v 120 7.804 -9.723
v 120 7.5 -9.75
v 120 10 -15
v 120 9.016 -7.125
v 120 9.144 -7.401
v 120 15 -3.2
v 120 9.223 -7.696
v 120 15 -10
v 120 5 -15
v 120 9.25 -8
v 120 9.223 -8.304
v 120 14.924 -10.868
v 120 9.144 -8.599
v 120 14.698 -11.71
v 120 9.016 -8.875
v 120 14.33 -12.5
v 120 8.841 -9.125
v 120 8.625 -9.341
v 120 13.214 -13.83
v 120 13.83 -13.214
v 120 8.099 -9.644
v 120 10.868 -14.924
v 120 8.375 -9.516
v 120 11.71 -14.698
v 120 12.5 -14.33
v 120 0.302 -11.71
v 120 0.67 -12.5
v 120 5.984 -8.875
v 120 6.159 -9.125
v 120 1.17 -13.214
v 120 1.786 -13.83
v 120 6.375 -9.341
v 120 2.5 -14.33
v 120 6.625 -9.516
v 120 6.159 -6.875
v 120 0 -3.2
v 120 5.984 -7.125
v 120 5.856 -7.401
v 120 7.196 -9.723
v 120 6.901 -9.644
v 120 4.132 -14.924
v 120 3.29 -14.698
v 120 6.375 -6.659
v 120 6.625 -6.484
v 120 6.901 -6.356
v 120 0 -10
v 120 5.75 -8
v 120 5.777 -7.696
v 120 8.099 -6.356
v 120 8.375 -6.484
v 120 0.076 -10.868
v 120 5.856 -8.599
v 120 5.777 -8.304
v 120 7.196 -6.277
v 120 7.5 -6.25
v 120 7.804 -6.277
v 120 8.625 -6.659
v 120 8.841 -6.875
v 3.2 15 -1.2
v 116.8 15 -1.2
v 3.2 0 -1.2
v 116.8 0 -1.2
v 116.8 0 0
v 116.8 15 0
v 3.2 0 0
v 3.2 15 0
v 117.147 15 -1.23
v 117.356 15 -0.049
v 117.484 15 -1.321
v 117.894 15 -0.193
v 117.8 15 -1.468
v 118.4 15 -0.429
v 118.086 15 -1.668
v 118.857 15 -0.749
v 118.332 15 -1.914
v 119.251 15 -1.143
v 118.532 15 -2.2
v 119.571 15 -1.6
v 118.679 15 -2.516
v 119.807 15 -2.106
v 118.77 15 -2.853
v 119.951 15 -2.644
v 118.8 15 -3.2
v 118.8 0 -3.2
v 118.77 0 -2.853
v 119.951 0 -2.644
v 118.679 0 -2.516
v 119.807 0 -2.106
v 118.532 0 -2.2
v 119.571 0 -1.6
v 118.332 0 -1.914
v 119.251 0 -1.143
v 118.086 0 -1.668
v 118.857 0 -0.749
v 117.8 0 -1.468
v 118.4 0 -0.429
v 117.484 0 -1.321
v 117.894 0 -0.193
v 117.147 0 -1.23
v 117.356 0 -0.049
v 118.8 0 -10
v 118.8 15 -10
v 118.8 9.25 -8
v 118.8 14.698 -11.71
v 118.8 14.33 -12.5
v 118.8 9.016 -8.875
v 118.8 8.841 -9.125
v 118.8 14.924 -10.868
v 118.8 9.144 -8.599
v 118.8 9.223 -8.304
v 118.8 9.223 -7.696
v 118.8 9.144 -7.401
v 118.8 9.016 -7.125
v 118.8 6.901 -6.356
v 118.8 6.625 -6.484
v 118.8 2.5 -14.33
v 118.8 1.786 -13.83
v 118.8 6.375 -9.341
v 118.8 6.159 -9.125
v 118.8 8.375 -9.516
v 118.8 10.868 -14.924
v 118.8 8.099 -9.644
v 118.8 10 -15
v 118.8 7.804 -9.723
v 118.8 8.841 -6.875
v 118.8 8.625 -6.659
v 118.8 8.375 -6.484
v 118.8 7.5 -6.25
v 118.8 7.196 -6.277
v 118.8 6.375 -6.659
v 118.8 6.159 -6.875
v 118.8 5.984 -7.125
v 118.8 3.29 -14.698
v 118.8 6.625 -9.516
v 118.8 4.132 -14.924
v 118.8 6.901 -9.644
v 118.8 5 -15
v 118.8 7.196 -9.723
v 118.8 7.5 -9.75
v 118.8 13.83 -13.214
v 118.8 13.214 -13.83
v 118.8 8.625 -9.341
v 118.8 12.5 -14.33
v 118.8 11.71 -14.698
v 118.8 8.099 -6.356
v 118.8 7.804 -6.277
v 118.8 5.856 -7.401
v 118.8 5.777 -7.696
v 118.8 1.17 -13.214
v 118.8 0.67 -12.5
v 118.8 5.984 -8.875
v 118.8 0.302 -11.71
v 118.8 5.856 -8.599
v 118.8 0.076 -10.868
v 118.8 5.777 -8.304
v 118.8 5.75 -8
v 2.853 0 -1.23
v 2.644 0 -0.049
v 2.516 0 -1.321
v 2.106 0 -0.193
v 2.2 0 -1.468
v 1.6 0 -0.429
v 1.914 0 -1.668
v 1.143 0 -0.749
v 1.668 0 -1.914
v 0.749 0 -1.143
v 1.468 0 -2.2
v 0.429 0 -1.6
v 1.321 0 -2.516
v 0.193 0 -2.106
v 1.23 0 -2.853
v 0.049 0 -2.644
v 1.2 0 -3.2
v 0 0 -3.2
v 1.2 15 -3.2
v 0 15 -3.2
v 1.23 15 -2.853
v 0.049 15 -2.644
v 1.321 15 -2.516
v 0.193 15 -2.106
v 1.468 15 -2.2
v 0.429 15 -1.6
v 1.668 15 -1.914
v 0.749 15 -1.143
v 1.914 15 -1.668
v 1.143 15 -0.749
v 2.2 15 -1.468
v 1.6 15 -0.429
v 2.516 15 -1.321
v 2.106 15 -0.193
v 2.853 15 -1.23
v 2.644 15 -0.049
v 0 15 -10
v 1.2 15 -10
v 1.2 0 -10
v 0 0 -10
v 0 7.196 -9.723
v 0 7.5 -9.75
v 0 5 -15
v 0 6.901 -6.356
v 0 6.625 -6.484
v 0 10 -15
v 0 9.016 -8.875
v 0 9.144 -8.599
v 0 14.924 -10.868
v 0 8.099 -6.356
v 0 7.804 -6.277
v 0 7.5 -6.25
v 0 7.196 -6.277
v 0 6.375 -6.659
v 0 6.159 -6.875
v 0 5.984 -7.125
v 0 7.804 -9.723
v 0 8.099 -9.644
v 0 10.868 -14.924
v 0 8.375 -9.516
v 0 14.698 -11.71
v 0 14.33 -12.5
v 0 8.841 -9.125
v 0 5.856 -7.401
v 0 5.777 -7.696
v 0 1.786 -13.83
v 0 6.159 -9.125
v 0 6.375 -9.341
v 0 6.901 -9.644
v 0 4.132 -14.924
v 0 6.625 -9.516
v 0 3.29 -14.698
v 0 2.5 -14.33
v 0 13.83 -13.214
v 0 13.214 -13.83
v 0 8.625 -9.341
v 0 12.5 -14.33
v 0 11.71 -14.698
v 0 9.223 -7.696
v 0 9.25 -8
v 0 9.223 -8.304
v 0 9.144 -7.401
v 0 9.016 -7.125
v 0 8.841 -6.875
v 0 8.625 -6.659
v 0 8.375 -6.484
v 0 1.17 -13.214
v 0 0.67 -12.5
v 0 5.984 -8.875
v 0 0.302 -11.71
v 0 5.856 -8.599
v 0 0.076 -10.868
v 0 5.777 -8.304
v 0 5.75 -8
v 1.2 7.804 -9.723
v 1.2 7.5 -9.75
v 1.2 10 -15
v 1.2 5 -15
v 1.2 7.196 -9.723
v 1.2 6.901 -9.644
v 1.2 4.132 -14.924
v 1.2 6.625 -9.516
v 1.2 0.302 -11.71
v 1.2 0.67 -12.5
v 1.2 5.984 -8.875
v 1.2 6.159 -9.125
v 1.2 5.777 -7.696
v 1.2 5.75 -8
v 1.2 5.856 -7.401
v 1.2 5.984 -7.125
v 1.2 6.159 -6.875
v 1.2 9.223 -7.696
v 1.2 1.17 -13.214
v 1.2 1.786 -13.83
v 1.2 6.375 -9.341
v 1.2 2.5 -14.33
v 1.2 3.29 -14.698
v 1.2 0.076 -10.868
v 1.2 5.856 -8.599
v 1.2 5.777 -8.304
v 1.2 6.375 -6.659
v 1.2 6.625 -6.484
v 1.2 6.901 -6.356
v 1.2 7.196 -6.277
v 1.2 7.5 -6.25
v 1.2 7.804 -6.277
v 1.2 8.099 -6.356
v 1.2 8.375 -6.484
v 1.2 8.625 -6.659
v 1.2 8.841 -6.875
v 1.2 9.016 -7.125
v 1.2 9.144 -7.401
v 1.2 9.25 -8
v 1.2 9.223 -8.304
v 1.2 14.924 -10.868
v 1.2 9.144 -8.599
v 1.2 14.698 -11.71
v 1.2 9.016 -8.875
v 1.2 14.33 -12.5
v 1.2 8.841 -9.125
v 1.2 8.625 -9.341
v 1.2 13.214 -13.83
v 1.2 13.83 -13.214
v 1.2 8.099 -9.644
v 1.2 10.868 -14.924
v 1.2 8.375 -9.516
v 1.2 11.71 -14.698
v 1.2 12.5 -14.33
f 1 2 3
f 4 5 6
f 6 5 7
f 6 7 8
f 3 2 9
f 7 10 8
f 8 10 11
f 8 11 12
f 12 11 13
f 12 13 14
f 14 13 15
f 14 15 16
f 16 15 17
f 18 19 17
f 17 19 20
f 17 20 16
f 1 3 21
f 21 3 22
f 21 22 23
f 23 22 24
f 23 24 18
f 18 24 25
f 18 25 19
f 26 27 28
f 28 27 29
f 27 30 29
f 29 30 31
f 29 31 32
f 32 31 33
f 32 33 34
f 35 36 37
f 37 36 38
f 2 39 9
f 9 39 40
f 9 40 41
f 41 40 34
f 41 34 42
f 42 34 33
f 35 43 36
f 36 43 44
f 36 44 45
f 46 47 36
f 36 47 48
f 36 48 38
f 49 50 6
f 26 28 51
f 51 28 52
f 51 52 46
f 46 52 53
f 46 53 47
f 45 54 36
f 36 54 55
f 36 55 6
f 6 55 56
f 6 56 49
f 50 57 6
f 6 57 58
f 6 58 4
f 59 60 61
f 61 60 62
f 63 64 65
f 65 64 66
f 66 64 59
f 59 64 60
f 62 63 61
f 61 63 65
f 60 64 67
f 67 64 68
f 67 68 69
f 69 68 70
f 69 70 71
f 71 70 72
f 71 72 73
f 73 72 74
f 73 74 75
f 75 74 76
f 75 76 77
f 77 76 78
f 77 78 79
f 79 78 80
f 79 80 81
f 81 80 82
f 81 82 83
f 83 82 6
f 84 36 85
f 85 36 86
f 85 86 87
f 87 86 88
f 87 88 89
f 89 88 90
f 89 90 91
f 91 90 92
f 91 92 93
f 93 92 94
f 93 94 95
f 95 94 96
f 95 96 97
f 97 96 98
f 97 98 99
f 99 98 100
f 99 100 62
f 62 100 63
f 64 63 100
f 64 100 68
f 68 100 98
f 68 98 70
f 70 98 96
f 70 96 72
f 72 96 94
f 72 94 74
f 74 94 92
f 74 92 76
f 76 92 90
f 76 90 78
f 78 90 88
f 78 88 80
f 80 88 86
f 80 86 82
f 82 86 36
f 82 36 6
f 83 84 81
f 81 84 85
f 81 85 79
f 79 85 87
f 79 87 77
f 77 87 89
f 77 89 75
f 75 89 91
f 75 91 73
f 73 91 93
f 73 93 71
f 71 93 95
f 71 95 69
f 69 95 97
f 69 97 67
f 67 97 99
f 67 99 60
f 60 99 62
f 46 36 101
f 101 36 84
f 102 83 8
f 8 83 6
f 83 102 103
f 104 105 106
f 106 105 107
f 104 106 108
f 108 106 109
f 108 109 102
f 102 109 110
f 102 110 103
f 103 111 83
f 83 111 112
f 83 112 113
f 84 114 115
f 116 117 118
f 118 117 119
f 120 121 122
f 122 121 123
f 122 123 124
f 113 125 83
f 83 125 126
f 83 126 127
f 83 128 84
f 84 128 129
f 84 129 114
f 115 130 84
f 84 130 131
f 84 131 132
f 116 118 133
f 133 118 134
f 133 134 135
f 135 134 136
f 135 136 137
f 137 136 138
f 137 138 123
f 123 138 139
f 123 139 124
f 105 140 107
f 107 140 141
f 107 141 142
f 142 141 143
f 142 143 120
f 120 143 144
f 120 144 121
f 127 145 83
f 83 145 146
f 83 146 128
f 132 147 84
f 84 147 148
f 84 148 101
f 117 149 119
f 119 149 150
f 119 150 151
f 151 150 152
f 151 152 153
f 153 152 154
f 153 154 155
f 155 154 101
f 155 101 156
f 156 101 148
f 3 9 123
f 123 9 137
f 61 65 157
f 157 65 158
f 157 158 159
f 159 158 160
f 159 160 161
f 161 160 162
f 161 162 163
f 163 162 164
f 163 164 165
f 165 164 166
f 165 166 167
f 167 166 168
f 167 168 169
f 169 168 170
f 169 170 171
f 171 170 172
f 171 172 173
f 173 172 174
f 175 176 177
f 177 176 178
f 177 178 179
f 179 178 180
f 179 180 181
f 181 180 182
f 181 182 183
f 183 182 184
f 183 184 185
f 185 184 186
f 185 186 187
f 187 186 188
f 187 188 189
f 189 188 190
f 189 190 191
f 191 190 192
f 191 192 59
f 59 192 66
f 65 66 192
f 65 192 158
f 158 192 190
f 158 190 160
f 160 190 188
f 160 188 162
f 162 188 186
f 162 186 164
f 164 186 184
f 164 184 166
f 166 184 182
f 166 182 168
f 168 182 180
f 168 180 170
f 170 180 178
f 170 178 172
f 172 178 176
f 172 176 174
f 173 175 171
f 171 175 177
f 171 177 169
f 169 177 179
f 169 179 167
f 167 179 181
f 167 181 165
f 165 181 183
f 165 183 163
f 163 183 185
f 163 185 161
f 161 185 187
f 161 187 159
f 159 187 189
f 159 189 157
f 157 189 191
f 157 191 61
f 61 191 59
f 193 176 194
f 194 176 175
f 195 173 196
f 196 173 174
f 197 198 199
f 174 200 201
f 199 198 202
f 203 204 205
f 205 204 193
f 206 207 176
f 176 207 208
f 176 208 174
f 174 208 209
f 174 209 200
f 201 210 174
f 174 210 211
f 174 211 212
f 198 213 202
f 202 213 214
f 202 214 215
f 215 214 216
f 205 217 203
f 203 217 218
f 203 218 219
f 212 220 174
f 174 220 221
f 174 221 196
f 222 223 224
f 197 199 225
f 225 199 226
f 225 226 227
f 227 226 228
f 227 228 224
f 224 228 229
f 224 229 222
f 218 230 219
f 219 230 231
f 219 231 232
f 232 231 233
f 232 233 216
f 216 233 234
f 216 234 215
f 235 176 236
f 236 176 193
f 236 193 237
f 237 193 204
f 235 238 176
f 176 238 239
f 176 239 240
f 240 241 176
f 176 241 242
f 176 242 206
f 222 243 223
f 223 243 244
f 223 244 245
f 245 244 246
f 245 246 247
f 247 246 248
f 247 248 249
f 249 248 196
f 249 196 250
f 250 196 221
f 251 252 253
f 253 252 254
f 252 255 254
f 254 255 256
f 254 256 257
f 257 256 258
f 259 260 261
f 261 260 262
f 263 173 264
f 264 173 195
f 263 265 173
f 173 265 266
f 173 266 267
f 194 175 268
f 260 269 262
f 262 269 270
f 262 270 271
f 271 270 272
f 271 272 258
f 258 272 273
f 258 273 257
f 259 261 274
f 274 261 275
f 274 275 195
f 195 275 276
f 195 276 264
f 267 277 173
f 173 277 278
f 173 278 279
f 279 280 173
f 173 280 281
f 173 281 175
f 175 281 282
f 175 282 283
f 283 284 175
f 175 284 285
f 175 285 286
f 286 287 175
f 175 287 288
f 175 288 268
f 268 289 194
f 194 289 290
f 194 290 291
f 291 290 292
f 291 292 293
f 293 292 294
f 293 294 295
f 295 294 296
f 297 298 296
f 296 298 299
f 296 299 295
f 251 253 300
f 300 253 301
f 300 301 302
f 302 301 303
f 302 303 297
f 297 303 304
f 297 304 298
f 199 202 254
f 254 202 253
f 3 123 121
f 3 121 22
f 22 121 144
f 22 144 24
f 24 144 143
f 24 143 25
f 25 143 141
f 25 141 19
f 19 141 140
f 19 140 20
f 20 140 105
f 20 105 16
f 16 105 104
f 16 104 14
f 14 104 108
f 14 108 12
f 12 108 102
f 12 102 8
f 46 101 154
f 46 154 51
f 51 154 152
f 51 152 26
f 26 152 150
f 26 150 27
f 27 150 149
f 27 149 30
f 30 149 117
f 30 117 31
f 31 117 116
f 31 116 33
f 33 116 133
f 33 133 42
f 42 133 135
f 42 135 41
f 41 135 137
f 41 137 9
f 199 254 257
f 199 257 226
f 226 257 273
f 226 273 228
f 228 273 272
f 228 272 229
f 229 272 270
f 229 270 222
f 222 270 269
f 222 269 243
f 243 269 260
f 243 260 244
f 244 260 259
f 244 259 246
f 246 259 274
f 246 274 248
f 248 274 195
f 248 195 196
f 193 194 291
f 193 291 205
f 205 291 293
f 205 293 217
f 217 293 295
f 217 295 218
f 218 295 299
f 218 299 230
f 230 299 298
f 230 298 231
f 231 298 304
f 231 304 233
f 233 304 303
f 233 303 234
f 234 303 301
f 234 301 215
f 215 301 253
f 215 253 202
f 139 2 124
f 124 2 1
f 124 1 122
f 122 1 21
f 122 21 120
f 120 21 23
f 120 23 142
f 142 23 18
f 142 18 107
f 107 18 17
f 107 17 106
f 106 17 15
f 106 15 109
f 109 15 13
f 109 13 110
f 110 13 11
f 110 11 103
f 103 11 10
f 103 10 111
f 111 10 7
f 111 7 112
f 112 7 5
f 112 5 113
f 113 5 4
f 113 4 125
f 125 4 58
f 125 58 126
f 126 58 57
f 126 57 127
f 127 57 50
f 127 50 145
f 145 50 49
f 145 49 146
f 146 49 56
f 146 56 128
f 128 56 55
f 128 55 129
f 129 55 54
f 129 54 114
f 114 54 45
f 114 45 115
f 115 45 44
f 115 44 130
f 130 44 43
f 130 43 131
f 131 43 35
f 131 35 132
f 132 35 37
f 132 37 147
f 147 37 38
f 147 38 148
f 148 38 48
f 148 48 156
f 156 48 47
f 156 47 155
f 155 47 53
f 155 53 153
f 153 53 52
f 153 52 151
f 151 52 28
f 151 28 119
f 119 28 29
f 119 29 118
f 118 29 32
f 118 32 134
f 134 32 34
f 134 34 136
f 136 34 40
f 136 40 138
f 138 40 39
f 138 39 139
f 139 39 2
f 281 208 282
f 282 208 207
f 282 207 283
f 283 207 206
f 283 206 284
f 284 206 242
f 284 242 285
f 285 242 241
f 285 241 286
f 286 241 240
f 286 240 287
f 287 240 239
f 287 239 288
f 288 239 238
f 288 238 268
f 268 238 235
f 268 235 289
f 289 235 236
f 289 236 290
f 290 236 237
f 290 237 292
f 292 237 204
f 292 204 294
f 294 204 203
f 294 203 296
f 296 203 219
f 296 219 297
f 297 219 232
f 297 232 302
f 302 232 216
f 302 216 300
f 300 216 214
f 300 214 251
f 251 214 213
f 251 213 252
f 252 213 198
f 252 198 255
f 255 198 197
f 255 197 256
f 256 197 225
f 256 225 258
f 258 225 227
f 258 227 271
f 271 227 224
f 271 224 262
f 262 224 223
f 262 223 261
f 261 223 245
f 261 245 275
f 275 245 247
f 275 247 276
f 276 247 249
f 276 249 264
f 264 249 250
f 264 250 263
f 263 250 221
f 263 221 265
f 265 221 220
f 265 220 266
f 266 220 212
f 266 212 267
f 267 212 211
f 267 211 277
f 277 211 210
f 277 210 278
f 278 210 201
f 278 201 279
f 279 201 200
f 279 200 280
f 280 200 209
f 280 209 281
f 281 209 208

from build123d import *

# Parameters (mm, degrees)
ESBO_O1_W                        = 120
ESBO_O1_H                        = 15
FLANGE_BASE1_DEPTH               = 1.2
ARESTA_FLANGE1_STRIP_W           = 8.8
ARESTA_FLANGE1_STRIP_H           = 1.2
ARESTA_FLANGE1_STRIP_CUT_DEPTH   = 15
ARESTA_FLANGE1_STRIP_2_W         = 8.8
ARESTA_FLANGE1_STRIP_2_H         = 1.2
ARESTA_FLANGE1_STRIP_CUT_2_DEPTH = 15
ARESTA_FLANGE1_DEPTH             = 15
ARESTA_FLANGE1_BEND_DEPTH        = 15
QUEBRA_CANTO1_DEPTH              = 120
FURO_DE_DI_METRO_3_5_3_5_1_D     = 3.5
FURO_DE_DI_METRO_3_5_3_5_1_DEPTH = 1.2
FURO_DE_DI_METRO_3_5_3_5_2_D     = 3.5


# Read off the part's stored shape, not the designer's step: Quebra-Canto1
# Sheet-metal steps are written as plain solids
with BuildPart() as part:
    # Esboço1 → Flange-base1 (new body)
    with BuildSketch(Plane.XY):
        with Locations((60, 7.5)):
            Rectangle(ESBO_O1_W, ESBO_O1_H)
    extrude(amount=-FLANGE_BASE1_DEPTH)

    # Aresta-Flange1 strip (across the edge) → Aresta-Flange1 strip cut (cut)
    with BuildSketch(Plane(origin=(120, 15, -1.2), x_dir=(-1, 0, 0), z_dir=(0, -1, 0))):
        with Locations((-1.2, -0.6)):
            Rectangle(ARESTA_FLANGE1_STRIP_W, ARESTA_FLANGE1_STRIP_H)
    extrude(amount=ARESTA_FLANGE1_STRIP_CUT_DEPTH, mode=Mode.SUBTRACT)

    # Aresta-Flange1 strip 2 (across the edge) → Aresta-Flange1 strip cut 2 (cut)
    with BuildSketch(Plane(origin=(0, 0, -1.2), x_dir=(1, 0, 0), z_dir=(0, 1, 0))):
        with Locations((-1.2, -0.6)):
            Rectangle(ARESTA_FLANGE1_STRIP_2_W, ARESTA_FLANGE1_STRIP_2_H)
    extrude(amount=ARESTA_FLANGE1_STRIP_CUT_2_DEPTH, mode=Mode.SUBTRACT)

    # Aresta-Flange1 section (across the edge) → Aresta-Flange1 (add)
    with BuildSketch(Plane(origin=(120, 15, -1.2), x_dir=(-1, 0, 0), z_dir=(0, -1, 0))):
        with BuildLine():
            Line((0, 2), (0, 13.8))
            Line((0, 13.8), (1.2, 13.8))
            Line((1.2, 13.8), (1.2, 2))
            ThreePointArc((1.2, 2), (1.785786438, 0.585786438), (3.2, 0))
            Line((3.2, 0), (3.2, -1.2))
            ThreePointArc((3.2, -1.2), (0.9372583, -0.2627417), (0, 2))
        make_face()
    extrude(amount=ARESTA_FLANGE1_DEPTH)

    # Aresta-Flange1 section 2 (across the edge) → Aresta-Flange1 bend (add)
    with BuildSketch(Plane(origin=(0, 0, -1.2), x_dir=(1, 0, 0), z_dir=(0, 1, 0))):
        with BuildLine():
            Line((0, 2), (0, 13.8))
            Line((0, 13.8), (1.2, 13.8))
            Line((1.2, 13.8), (1.2, 2))
            ThreePointArc((1.2, 2), (1.785786438, 0.585786438), (3.2, 0))
            Line((3.2, 0), (3.2, -1.2))
            ThreePointArc((3.2, -1.2), (0.9372583, -0.2627417), (0, 2))
        make_face()
    extrude(amount=ARESTA_FLANGE1_BEND_DEPTH)

    # Quebra-Canto1 outline → Quebra-Canto1 (cut)
    with BuildSketch(Plane.YZ):
        with BuildLine():
            Line((15, -15), (15, -10))
            ThreePointArc((15, -10), (13.535533906, -13.535533906), (10, -15))
            Line((10, -15), (15, -15))
        make_face()
        with BuildLine():
            Line((0, -15), (5, -15))
            ThreePointArc((5, -15), (1.464466094, -13.535533906), (0, -10))
            Line((0, -10), (0, -15))
        make_face()
    extrude(amount=QUEBRA_CANTO1_DEPTH, mode=Mode.SUBTRACT)

    # Furo de diâmetro Ø3.5 (3.5)1
    with Locations(Plane(origin=(120, 0, 0), x_dir=(0, 0, -1), z_dir=(1, 0, 0))):
        with Locations((8, 7.5)):
            Hole(FURO_DE_DI_METRO_3_5_3_5_1_D / 2, depth=FURO_DE_DI_METRO_3_5_3_5_1_DEPTH)

    # Furo de diâmetro Ø3.5 (3.5)2 (through all)
    with Locations(Plane.ZY):
        with Locations((-8, 7.5)):
            Hole(FURO_DE_DI_METRO_3_5_3_5_2_D / 2)


solid = part.part
